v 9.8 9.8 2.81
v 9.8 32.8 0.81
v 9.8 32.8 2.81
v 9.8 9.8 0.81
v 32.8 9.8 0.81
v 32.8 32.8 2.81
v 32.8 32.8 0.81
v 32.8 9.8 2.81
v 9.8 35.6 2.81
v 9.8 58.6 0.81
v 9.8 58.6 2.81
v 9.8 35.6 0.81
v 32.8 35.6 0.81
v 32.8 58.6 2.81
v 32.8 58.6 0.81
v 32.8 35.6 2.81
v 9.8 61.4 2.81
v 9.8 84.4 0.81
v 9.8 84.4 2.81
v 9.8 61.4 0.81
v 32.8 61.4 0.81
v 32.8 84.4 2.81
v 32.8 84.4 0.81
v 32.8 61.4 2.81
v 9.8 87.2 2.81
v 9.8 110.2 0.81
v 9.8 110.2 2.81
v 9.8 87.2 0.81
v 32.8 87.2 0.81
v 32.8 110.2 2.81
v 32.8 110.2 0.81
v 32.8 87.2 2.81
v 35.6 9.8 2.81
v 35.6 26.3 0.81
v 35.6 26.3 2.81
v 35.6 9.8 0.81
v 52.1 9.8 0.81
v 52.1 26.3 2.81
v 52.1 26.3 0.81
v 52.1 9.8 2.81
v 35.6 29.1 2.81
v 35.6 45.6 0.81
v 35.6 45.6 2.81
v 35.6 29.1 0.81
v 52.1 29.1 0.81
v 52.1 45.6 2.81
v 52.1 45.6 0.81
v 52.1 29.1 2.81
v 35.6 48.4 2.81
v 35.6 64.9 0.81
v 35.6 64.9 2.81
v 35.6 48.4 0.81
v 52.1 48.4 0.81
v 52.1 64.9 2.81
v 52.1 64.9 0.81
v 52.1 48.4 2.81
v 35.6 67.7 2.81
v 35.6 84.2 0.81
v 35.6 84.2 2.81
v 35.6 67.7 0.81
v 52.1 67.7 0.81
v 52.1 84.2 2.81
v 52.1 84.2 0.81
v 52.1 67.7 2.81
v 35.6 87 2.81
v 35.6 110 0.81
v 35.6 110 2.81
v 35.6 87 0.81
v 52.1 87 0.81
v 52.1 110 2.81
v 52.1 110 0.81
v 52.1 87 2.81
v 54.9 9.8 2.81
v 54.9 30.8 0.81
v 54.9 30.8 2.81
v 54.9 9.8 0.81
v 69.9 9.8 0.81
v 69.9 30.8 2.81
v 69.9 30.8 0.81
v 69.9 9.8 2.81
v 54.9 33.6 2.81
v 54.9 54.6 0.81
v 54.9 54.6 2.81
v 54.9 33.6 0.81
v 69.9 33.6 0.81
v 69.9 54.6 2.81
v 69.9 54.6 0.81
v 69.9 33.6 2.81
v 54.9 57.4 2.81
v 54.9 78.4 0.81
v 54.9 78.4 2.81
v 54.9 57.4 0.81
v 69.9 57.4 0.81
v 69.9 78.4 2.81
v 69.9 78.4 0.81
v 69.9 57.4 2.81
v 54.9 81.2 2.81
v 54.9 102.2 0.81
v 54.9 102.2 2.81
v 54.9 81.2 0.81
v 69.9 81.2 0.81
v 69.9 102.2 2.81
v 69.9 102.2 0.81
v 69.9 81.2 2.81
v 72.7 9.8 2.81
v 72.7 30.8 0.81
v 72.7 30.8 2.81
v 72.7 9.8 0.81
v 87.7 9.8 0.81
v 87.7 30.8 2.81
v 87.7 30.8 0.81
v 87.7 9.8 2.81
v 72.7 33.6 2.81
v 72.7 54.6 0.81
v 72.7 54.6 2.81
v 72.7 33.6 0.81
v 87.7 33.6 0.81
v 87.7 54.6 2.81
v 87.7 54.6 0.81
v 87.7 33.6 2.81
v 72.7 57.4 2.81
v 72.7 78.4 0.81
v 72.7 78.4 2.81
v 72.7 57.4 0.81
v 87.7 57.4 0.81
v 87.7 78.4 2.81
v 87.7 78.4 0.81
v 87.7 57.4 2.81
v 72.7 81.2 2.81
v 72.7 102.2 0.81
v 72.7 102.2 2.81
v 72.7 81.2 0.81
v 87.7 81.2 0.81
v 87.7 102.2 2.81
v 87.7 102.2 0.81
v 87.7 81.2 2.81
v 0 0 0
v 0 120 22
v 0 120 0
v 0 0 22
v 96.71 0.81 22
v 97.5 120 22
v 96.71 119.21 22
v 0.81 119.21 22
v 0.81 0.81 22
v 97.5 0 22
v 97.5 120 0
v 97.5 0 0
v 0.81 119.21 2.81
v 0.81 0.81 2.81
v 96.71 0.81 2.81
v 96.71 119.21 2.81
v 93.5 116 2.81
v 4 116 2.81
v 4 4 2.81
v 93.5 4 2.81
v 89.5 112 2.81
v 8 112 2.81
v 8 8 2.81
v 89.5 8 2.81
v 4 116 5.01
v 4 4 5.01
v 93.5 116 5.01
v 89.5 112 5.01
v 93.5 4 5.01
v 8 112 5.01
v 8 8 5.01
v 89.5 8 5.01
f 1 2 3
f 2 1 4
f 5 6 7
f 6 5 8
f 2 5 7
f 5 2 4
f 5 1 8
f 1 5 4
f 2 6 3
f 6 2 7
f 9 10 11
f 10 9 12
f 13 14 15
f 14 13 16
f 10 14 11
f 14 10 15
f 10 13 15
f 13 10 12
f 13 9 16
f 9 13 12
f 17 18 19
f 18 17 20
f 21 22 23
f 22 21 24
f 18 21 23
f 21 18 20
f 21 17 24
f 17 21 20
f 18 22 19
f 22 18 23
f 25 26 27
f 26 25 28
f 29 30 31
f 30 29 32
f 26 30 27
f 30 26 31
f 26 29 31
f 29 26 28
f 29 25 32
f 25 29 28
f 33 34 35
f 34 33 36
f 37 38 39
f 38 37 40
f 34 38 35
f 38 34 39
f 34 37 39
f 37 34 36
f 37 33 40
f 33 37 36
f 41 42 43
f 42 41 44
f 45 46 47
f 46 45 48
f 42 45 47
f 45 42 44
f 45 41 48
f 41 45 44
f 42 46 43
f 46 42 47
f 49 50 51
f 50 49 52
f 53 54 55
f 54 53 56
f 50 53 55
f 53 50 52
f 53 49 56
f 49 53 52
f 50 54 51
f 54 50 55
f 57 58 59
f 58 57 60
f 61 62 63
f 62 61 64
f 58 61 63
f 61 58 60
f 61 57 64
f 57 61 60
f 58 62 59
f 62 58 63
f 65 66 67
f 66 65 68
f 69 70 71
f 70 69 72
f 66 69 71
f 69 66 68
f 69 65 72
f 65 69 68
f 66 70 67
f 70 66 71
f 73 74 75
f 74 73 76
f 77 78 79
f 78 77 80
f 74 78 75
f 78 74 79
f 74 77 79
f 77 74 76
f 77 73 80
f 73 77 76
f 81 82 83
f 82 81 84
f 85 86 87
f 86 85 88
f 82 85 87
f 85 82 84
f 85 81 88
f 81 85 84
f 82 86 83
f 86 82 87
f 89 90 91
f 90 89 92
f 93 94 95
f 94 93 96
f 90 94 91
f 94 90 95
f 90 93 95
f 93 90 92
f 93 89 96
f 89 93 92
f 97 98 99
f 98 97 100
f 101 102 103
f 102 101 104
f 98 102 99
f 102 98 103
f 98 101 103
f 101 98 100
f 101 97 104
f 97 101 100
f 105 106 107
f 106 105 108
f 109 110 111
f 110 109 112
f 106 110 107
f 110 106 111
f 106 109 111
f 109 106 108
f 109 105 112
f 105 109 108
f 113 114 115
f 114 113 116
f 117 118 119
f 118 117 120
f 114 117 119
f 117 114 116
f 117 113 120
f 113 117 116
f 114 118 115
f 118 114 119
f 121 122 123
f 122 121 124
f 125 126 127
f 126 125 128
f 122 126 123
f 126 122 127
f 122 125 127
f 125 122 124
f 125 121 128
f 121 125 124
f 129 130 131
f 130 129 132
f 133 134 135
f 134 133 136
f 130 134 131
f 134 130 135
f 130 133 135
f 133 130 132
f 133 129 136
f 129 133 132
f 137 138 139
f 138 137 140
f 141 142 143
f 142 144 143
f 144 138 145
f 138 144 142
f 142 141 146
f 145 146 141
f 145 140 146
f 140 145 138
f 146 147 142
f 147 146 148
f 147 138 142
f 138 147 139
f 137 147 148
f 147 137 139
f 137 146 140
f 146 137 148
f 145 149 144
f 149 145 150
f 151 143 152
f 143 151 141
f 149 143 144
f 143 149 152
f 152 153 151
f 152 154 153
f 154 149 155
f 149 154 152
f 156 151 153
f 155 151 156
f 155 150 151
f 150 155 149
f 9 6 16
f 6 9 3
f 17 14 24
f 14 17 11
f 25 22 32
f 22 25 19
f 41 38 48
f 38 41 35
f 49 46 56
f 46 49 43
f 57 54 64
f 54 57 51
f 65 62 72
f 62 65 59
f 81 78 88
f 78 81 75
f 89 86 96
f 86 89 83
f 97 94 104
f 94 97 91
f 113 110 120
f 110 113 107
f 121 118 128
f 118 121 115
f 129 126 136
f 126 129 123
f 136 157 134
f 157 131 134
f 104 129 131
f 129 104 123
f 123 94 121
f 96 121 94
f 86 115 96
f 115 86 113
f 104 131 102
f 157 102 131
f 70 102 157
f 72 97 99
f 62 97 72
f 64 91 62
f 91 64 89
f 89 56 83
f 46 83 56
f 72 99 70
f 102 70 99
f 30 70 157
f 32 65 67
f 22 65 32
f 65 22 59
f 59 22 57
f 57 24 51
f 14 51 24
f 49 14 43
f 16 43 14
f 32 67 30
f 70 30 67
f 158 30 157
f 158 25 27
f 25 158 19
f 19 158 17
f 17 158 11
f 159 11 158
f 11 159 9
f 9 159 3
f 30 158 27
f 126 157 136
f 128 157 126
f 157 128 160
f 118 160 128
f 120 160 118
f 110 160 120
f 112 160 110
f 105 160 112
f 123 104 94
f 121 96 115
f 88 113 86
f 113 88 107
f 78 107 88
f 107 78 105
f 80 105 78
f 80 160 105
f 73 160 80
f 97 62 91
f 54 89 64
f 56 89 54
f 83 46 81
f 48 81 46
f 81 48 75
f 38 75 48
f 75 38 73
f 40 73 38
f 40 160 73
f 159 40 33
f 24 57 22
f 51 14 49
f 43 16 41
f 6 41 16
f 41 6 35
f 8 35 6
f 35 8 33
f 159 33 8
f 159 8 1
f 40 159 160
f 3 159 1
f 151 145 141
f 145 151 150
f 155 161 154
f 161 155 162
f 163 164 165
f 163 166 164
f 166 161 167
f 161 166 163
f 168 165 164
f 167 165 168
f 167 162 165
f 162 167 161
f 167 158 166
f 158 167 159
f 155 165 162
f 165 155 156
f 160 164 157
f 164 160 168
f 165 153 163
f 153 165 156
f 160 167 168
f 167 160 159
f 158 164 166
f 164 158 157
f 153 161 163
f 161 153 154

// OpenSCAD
//units are in mm
$fn=20;

// Epsilon value
e = 0.01;

// Wall thickness
wall = .8;

// Outer border width
border = 8;

// mm clearance alongside each button
clearance = 6;

// Button size constants
a_diameter = 19 + clearance;
b_diameter = 12.5 + clearance;
y_length = 17 + clearance;
y_width = 11 + clearance;
x_length = 17 + clearance;
x_width = 11 + clearance;
start_diameter = 8 + clearance;
button_height = 20;

// How many sets of buttons
sets = 4;

module a_button() {
    translate([wall + 1, wall + 1, wall + e])
        cube([a_diameter - 2, a_diameter - 2, button_height]);
}

module b_button() {
    translate([wall + 1, wall + 1, wall + e])
        cube([b_diameter - 2, b_diameter - 2, button_height]);
}

module x_button() {
    translate([wall + 1, wall + 1, wall + e])
        cube([x_width - 2, x_length - 2, button_height]);
}

module start_buttons() {
    translate([wall + 1, wall + 1, wall + e])
        cube([b_diameter - 2, a_diameter - 2, button_height]);    // The 2nd term here is eye-balled
}

// Hexagonal mold keys
module key(r, h) {
    $fn=10;
    cylinder(h = 2.5, r = 2, center = false);
}

difference() {
    // Bounding box
    cube([2*border + a_diameter + b_diameter + x_width + y_width + 5*wall, 2*border + 4*a_diameter + 5*wall, button_height + 2]);

    // Bottom indents
    translate([wall + e, wall + e, 2 + wall + e])
        cube([2*border + a_diameter + b_diameter + 2*x_width + 3*wall, 2*border + 4*a_diameter + 3*wall, button_height]);

    translate([border, border, 0]) {

        // First collumn, A buttons
        translate([0, 0, 0]) {
            for(i = [0:sets - 1]) {
                translate([0, i * (wall + a_diameter), 0])
                    a_button();
            }
        }

        // Second collumn, B and start buttons
        translate([a_diameter + wall, 0, 0]) {
            for(i = [0:sets - 1]) {
                translate([0, i * (wall + b_diameter), 0])
                    b_button();
            }
            translate([0, 4 * (wall + b_diameter), 0])
                start_buttons();
        }

        // Third collumn, X buttons
        translate([a_diameter + b_diameter + 2 * wall, 0, 0]) {
            for(i = [0:sets - 1]) {
                translate([0, i * (wall + x_length), 0])
                    x_button();
            }
        }

        // Fourth collumn, Y buttons
        translate([a_diameter + b_diameter + x_width + 3 * wall, 0, 0]) {
            for(i = [0:sets - 1]) {
                translate([0, i * (wall + x_length), 0])
                    x_button();
            }
        }
    }
}

translate([border/2, border/2, e])
    cube([border/2, 110, 5]);
translate([89.5, border/2, e])
    cube([border/2, 110, 5]);
translate([border/2, border/2, e])
    cube([89.5, border/2, 5]);
translate([border/2, 112, e])
    cube([89.5, border/2, 5]);

/*
for(x=[0:4], y=[0:6]) {
    if(x==0 || x==4 || y==0 || y==6)
        translate([border/2 + x*22.20, border/2 + y*18.4, wall + 2])
            key();
}
*/

// Text
/*
   linear_extrude(height=4)
   translate([70, 90, 5])
   scale(.4)
   mirror()
   text("Shinewave");
*/
